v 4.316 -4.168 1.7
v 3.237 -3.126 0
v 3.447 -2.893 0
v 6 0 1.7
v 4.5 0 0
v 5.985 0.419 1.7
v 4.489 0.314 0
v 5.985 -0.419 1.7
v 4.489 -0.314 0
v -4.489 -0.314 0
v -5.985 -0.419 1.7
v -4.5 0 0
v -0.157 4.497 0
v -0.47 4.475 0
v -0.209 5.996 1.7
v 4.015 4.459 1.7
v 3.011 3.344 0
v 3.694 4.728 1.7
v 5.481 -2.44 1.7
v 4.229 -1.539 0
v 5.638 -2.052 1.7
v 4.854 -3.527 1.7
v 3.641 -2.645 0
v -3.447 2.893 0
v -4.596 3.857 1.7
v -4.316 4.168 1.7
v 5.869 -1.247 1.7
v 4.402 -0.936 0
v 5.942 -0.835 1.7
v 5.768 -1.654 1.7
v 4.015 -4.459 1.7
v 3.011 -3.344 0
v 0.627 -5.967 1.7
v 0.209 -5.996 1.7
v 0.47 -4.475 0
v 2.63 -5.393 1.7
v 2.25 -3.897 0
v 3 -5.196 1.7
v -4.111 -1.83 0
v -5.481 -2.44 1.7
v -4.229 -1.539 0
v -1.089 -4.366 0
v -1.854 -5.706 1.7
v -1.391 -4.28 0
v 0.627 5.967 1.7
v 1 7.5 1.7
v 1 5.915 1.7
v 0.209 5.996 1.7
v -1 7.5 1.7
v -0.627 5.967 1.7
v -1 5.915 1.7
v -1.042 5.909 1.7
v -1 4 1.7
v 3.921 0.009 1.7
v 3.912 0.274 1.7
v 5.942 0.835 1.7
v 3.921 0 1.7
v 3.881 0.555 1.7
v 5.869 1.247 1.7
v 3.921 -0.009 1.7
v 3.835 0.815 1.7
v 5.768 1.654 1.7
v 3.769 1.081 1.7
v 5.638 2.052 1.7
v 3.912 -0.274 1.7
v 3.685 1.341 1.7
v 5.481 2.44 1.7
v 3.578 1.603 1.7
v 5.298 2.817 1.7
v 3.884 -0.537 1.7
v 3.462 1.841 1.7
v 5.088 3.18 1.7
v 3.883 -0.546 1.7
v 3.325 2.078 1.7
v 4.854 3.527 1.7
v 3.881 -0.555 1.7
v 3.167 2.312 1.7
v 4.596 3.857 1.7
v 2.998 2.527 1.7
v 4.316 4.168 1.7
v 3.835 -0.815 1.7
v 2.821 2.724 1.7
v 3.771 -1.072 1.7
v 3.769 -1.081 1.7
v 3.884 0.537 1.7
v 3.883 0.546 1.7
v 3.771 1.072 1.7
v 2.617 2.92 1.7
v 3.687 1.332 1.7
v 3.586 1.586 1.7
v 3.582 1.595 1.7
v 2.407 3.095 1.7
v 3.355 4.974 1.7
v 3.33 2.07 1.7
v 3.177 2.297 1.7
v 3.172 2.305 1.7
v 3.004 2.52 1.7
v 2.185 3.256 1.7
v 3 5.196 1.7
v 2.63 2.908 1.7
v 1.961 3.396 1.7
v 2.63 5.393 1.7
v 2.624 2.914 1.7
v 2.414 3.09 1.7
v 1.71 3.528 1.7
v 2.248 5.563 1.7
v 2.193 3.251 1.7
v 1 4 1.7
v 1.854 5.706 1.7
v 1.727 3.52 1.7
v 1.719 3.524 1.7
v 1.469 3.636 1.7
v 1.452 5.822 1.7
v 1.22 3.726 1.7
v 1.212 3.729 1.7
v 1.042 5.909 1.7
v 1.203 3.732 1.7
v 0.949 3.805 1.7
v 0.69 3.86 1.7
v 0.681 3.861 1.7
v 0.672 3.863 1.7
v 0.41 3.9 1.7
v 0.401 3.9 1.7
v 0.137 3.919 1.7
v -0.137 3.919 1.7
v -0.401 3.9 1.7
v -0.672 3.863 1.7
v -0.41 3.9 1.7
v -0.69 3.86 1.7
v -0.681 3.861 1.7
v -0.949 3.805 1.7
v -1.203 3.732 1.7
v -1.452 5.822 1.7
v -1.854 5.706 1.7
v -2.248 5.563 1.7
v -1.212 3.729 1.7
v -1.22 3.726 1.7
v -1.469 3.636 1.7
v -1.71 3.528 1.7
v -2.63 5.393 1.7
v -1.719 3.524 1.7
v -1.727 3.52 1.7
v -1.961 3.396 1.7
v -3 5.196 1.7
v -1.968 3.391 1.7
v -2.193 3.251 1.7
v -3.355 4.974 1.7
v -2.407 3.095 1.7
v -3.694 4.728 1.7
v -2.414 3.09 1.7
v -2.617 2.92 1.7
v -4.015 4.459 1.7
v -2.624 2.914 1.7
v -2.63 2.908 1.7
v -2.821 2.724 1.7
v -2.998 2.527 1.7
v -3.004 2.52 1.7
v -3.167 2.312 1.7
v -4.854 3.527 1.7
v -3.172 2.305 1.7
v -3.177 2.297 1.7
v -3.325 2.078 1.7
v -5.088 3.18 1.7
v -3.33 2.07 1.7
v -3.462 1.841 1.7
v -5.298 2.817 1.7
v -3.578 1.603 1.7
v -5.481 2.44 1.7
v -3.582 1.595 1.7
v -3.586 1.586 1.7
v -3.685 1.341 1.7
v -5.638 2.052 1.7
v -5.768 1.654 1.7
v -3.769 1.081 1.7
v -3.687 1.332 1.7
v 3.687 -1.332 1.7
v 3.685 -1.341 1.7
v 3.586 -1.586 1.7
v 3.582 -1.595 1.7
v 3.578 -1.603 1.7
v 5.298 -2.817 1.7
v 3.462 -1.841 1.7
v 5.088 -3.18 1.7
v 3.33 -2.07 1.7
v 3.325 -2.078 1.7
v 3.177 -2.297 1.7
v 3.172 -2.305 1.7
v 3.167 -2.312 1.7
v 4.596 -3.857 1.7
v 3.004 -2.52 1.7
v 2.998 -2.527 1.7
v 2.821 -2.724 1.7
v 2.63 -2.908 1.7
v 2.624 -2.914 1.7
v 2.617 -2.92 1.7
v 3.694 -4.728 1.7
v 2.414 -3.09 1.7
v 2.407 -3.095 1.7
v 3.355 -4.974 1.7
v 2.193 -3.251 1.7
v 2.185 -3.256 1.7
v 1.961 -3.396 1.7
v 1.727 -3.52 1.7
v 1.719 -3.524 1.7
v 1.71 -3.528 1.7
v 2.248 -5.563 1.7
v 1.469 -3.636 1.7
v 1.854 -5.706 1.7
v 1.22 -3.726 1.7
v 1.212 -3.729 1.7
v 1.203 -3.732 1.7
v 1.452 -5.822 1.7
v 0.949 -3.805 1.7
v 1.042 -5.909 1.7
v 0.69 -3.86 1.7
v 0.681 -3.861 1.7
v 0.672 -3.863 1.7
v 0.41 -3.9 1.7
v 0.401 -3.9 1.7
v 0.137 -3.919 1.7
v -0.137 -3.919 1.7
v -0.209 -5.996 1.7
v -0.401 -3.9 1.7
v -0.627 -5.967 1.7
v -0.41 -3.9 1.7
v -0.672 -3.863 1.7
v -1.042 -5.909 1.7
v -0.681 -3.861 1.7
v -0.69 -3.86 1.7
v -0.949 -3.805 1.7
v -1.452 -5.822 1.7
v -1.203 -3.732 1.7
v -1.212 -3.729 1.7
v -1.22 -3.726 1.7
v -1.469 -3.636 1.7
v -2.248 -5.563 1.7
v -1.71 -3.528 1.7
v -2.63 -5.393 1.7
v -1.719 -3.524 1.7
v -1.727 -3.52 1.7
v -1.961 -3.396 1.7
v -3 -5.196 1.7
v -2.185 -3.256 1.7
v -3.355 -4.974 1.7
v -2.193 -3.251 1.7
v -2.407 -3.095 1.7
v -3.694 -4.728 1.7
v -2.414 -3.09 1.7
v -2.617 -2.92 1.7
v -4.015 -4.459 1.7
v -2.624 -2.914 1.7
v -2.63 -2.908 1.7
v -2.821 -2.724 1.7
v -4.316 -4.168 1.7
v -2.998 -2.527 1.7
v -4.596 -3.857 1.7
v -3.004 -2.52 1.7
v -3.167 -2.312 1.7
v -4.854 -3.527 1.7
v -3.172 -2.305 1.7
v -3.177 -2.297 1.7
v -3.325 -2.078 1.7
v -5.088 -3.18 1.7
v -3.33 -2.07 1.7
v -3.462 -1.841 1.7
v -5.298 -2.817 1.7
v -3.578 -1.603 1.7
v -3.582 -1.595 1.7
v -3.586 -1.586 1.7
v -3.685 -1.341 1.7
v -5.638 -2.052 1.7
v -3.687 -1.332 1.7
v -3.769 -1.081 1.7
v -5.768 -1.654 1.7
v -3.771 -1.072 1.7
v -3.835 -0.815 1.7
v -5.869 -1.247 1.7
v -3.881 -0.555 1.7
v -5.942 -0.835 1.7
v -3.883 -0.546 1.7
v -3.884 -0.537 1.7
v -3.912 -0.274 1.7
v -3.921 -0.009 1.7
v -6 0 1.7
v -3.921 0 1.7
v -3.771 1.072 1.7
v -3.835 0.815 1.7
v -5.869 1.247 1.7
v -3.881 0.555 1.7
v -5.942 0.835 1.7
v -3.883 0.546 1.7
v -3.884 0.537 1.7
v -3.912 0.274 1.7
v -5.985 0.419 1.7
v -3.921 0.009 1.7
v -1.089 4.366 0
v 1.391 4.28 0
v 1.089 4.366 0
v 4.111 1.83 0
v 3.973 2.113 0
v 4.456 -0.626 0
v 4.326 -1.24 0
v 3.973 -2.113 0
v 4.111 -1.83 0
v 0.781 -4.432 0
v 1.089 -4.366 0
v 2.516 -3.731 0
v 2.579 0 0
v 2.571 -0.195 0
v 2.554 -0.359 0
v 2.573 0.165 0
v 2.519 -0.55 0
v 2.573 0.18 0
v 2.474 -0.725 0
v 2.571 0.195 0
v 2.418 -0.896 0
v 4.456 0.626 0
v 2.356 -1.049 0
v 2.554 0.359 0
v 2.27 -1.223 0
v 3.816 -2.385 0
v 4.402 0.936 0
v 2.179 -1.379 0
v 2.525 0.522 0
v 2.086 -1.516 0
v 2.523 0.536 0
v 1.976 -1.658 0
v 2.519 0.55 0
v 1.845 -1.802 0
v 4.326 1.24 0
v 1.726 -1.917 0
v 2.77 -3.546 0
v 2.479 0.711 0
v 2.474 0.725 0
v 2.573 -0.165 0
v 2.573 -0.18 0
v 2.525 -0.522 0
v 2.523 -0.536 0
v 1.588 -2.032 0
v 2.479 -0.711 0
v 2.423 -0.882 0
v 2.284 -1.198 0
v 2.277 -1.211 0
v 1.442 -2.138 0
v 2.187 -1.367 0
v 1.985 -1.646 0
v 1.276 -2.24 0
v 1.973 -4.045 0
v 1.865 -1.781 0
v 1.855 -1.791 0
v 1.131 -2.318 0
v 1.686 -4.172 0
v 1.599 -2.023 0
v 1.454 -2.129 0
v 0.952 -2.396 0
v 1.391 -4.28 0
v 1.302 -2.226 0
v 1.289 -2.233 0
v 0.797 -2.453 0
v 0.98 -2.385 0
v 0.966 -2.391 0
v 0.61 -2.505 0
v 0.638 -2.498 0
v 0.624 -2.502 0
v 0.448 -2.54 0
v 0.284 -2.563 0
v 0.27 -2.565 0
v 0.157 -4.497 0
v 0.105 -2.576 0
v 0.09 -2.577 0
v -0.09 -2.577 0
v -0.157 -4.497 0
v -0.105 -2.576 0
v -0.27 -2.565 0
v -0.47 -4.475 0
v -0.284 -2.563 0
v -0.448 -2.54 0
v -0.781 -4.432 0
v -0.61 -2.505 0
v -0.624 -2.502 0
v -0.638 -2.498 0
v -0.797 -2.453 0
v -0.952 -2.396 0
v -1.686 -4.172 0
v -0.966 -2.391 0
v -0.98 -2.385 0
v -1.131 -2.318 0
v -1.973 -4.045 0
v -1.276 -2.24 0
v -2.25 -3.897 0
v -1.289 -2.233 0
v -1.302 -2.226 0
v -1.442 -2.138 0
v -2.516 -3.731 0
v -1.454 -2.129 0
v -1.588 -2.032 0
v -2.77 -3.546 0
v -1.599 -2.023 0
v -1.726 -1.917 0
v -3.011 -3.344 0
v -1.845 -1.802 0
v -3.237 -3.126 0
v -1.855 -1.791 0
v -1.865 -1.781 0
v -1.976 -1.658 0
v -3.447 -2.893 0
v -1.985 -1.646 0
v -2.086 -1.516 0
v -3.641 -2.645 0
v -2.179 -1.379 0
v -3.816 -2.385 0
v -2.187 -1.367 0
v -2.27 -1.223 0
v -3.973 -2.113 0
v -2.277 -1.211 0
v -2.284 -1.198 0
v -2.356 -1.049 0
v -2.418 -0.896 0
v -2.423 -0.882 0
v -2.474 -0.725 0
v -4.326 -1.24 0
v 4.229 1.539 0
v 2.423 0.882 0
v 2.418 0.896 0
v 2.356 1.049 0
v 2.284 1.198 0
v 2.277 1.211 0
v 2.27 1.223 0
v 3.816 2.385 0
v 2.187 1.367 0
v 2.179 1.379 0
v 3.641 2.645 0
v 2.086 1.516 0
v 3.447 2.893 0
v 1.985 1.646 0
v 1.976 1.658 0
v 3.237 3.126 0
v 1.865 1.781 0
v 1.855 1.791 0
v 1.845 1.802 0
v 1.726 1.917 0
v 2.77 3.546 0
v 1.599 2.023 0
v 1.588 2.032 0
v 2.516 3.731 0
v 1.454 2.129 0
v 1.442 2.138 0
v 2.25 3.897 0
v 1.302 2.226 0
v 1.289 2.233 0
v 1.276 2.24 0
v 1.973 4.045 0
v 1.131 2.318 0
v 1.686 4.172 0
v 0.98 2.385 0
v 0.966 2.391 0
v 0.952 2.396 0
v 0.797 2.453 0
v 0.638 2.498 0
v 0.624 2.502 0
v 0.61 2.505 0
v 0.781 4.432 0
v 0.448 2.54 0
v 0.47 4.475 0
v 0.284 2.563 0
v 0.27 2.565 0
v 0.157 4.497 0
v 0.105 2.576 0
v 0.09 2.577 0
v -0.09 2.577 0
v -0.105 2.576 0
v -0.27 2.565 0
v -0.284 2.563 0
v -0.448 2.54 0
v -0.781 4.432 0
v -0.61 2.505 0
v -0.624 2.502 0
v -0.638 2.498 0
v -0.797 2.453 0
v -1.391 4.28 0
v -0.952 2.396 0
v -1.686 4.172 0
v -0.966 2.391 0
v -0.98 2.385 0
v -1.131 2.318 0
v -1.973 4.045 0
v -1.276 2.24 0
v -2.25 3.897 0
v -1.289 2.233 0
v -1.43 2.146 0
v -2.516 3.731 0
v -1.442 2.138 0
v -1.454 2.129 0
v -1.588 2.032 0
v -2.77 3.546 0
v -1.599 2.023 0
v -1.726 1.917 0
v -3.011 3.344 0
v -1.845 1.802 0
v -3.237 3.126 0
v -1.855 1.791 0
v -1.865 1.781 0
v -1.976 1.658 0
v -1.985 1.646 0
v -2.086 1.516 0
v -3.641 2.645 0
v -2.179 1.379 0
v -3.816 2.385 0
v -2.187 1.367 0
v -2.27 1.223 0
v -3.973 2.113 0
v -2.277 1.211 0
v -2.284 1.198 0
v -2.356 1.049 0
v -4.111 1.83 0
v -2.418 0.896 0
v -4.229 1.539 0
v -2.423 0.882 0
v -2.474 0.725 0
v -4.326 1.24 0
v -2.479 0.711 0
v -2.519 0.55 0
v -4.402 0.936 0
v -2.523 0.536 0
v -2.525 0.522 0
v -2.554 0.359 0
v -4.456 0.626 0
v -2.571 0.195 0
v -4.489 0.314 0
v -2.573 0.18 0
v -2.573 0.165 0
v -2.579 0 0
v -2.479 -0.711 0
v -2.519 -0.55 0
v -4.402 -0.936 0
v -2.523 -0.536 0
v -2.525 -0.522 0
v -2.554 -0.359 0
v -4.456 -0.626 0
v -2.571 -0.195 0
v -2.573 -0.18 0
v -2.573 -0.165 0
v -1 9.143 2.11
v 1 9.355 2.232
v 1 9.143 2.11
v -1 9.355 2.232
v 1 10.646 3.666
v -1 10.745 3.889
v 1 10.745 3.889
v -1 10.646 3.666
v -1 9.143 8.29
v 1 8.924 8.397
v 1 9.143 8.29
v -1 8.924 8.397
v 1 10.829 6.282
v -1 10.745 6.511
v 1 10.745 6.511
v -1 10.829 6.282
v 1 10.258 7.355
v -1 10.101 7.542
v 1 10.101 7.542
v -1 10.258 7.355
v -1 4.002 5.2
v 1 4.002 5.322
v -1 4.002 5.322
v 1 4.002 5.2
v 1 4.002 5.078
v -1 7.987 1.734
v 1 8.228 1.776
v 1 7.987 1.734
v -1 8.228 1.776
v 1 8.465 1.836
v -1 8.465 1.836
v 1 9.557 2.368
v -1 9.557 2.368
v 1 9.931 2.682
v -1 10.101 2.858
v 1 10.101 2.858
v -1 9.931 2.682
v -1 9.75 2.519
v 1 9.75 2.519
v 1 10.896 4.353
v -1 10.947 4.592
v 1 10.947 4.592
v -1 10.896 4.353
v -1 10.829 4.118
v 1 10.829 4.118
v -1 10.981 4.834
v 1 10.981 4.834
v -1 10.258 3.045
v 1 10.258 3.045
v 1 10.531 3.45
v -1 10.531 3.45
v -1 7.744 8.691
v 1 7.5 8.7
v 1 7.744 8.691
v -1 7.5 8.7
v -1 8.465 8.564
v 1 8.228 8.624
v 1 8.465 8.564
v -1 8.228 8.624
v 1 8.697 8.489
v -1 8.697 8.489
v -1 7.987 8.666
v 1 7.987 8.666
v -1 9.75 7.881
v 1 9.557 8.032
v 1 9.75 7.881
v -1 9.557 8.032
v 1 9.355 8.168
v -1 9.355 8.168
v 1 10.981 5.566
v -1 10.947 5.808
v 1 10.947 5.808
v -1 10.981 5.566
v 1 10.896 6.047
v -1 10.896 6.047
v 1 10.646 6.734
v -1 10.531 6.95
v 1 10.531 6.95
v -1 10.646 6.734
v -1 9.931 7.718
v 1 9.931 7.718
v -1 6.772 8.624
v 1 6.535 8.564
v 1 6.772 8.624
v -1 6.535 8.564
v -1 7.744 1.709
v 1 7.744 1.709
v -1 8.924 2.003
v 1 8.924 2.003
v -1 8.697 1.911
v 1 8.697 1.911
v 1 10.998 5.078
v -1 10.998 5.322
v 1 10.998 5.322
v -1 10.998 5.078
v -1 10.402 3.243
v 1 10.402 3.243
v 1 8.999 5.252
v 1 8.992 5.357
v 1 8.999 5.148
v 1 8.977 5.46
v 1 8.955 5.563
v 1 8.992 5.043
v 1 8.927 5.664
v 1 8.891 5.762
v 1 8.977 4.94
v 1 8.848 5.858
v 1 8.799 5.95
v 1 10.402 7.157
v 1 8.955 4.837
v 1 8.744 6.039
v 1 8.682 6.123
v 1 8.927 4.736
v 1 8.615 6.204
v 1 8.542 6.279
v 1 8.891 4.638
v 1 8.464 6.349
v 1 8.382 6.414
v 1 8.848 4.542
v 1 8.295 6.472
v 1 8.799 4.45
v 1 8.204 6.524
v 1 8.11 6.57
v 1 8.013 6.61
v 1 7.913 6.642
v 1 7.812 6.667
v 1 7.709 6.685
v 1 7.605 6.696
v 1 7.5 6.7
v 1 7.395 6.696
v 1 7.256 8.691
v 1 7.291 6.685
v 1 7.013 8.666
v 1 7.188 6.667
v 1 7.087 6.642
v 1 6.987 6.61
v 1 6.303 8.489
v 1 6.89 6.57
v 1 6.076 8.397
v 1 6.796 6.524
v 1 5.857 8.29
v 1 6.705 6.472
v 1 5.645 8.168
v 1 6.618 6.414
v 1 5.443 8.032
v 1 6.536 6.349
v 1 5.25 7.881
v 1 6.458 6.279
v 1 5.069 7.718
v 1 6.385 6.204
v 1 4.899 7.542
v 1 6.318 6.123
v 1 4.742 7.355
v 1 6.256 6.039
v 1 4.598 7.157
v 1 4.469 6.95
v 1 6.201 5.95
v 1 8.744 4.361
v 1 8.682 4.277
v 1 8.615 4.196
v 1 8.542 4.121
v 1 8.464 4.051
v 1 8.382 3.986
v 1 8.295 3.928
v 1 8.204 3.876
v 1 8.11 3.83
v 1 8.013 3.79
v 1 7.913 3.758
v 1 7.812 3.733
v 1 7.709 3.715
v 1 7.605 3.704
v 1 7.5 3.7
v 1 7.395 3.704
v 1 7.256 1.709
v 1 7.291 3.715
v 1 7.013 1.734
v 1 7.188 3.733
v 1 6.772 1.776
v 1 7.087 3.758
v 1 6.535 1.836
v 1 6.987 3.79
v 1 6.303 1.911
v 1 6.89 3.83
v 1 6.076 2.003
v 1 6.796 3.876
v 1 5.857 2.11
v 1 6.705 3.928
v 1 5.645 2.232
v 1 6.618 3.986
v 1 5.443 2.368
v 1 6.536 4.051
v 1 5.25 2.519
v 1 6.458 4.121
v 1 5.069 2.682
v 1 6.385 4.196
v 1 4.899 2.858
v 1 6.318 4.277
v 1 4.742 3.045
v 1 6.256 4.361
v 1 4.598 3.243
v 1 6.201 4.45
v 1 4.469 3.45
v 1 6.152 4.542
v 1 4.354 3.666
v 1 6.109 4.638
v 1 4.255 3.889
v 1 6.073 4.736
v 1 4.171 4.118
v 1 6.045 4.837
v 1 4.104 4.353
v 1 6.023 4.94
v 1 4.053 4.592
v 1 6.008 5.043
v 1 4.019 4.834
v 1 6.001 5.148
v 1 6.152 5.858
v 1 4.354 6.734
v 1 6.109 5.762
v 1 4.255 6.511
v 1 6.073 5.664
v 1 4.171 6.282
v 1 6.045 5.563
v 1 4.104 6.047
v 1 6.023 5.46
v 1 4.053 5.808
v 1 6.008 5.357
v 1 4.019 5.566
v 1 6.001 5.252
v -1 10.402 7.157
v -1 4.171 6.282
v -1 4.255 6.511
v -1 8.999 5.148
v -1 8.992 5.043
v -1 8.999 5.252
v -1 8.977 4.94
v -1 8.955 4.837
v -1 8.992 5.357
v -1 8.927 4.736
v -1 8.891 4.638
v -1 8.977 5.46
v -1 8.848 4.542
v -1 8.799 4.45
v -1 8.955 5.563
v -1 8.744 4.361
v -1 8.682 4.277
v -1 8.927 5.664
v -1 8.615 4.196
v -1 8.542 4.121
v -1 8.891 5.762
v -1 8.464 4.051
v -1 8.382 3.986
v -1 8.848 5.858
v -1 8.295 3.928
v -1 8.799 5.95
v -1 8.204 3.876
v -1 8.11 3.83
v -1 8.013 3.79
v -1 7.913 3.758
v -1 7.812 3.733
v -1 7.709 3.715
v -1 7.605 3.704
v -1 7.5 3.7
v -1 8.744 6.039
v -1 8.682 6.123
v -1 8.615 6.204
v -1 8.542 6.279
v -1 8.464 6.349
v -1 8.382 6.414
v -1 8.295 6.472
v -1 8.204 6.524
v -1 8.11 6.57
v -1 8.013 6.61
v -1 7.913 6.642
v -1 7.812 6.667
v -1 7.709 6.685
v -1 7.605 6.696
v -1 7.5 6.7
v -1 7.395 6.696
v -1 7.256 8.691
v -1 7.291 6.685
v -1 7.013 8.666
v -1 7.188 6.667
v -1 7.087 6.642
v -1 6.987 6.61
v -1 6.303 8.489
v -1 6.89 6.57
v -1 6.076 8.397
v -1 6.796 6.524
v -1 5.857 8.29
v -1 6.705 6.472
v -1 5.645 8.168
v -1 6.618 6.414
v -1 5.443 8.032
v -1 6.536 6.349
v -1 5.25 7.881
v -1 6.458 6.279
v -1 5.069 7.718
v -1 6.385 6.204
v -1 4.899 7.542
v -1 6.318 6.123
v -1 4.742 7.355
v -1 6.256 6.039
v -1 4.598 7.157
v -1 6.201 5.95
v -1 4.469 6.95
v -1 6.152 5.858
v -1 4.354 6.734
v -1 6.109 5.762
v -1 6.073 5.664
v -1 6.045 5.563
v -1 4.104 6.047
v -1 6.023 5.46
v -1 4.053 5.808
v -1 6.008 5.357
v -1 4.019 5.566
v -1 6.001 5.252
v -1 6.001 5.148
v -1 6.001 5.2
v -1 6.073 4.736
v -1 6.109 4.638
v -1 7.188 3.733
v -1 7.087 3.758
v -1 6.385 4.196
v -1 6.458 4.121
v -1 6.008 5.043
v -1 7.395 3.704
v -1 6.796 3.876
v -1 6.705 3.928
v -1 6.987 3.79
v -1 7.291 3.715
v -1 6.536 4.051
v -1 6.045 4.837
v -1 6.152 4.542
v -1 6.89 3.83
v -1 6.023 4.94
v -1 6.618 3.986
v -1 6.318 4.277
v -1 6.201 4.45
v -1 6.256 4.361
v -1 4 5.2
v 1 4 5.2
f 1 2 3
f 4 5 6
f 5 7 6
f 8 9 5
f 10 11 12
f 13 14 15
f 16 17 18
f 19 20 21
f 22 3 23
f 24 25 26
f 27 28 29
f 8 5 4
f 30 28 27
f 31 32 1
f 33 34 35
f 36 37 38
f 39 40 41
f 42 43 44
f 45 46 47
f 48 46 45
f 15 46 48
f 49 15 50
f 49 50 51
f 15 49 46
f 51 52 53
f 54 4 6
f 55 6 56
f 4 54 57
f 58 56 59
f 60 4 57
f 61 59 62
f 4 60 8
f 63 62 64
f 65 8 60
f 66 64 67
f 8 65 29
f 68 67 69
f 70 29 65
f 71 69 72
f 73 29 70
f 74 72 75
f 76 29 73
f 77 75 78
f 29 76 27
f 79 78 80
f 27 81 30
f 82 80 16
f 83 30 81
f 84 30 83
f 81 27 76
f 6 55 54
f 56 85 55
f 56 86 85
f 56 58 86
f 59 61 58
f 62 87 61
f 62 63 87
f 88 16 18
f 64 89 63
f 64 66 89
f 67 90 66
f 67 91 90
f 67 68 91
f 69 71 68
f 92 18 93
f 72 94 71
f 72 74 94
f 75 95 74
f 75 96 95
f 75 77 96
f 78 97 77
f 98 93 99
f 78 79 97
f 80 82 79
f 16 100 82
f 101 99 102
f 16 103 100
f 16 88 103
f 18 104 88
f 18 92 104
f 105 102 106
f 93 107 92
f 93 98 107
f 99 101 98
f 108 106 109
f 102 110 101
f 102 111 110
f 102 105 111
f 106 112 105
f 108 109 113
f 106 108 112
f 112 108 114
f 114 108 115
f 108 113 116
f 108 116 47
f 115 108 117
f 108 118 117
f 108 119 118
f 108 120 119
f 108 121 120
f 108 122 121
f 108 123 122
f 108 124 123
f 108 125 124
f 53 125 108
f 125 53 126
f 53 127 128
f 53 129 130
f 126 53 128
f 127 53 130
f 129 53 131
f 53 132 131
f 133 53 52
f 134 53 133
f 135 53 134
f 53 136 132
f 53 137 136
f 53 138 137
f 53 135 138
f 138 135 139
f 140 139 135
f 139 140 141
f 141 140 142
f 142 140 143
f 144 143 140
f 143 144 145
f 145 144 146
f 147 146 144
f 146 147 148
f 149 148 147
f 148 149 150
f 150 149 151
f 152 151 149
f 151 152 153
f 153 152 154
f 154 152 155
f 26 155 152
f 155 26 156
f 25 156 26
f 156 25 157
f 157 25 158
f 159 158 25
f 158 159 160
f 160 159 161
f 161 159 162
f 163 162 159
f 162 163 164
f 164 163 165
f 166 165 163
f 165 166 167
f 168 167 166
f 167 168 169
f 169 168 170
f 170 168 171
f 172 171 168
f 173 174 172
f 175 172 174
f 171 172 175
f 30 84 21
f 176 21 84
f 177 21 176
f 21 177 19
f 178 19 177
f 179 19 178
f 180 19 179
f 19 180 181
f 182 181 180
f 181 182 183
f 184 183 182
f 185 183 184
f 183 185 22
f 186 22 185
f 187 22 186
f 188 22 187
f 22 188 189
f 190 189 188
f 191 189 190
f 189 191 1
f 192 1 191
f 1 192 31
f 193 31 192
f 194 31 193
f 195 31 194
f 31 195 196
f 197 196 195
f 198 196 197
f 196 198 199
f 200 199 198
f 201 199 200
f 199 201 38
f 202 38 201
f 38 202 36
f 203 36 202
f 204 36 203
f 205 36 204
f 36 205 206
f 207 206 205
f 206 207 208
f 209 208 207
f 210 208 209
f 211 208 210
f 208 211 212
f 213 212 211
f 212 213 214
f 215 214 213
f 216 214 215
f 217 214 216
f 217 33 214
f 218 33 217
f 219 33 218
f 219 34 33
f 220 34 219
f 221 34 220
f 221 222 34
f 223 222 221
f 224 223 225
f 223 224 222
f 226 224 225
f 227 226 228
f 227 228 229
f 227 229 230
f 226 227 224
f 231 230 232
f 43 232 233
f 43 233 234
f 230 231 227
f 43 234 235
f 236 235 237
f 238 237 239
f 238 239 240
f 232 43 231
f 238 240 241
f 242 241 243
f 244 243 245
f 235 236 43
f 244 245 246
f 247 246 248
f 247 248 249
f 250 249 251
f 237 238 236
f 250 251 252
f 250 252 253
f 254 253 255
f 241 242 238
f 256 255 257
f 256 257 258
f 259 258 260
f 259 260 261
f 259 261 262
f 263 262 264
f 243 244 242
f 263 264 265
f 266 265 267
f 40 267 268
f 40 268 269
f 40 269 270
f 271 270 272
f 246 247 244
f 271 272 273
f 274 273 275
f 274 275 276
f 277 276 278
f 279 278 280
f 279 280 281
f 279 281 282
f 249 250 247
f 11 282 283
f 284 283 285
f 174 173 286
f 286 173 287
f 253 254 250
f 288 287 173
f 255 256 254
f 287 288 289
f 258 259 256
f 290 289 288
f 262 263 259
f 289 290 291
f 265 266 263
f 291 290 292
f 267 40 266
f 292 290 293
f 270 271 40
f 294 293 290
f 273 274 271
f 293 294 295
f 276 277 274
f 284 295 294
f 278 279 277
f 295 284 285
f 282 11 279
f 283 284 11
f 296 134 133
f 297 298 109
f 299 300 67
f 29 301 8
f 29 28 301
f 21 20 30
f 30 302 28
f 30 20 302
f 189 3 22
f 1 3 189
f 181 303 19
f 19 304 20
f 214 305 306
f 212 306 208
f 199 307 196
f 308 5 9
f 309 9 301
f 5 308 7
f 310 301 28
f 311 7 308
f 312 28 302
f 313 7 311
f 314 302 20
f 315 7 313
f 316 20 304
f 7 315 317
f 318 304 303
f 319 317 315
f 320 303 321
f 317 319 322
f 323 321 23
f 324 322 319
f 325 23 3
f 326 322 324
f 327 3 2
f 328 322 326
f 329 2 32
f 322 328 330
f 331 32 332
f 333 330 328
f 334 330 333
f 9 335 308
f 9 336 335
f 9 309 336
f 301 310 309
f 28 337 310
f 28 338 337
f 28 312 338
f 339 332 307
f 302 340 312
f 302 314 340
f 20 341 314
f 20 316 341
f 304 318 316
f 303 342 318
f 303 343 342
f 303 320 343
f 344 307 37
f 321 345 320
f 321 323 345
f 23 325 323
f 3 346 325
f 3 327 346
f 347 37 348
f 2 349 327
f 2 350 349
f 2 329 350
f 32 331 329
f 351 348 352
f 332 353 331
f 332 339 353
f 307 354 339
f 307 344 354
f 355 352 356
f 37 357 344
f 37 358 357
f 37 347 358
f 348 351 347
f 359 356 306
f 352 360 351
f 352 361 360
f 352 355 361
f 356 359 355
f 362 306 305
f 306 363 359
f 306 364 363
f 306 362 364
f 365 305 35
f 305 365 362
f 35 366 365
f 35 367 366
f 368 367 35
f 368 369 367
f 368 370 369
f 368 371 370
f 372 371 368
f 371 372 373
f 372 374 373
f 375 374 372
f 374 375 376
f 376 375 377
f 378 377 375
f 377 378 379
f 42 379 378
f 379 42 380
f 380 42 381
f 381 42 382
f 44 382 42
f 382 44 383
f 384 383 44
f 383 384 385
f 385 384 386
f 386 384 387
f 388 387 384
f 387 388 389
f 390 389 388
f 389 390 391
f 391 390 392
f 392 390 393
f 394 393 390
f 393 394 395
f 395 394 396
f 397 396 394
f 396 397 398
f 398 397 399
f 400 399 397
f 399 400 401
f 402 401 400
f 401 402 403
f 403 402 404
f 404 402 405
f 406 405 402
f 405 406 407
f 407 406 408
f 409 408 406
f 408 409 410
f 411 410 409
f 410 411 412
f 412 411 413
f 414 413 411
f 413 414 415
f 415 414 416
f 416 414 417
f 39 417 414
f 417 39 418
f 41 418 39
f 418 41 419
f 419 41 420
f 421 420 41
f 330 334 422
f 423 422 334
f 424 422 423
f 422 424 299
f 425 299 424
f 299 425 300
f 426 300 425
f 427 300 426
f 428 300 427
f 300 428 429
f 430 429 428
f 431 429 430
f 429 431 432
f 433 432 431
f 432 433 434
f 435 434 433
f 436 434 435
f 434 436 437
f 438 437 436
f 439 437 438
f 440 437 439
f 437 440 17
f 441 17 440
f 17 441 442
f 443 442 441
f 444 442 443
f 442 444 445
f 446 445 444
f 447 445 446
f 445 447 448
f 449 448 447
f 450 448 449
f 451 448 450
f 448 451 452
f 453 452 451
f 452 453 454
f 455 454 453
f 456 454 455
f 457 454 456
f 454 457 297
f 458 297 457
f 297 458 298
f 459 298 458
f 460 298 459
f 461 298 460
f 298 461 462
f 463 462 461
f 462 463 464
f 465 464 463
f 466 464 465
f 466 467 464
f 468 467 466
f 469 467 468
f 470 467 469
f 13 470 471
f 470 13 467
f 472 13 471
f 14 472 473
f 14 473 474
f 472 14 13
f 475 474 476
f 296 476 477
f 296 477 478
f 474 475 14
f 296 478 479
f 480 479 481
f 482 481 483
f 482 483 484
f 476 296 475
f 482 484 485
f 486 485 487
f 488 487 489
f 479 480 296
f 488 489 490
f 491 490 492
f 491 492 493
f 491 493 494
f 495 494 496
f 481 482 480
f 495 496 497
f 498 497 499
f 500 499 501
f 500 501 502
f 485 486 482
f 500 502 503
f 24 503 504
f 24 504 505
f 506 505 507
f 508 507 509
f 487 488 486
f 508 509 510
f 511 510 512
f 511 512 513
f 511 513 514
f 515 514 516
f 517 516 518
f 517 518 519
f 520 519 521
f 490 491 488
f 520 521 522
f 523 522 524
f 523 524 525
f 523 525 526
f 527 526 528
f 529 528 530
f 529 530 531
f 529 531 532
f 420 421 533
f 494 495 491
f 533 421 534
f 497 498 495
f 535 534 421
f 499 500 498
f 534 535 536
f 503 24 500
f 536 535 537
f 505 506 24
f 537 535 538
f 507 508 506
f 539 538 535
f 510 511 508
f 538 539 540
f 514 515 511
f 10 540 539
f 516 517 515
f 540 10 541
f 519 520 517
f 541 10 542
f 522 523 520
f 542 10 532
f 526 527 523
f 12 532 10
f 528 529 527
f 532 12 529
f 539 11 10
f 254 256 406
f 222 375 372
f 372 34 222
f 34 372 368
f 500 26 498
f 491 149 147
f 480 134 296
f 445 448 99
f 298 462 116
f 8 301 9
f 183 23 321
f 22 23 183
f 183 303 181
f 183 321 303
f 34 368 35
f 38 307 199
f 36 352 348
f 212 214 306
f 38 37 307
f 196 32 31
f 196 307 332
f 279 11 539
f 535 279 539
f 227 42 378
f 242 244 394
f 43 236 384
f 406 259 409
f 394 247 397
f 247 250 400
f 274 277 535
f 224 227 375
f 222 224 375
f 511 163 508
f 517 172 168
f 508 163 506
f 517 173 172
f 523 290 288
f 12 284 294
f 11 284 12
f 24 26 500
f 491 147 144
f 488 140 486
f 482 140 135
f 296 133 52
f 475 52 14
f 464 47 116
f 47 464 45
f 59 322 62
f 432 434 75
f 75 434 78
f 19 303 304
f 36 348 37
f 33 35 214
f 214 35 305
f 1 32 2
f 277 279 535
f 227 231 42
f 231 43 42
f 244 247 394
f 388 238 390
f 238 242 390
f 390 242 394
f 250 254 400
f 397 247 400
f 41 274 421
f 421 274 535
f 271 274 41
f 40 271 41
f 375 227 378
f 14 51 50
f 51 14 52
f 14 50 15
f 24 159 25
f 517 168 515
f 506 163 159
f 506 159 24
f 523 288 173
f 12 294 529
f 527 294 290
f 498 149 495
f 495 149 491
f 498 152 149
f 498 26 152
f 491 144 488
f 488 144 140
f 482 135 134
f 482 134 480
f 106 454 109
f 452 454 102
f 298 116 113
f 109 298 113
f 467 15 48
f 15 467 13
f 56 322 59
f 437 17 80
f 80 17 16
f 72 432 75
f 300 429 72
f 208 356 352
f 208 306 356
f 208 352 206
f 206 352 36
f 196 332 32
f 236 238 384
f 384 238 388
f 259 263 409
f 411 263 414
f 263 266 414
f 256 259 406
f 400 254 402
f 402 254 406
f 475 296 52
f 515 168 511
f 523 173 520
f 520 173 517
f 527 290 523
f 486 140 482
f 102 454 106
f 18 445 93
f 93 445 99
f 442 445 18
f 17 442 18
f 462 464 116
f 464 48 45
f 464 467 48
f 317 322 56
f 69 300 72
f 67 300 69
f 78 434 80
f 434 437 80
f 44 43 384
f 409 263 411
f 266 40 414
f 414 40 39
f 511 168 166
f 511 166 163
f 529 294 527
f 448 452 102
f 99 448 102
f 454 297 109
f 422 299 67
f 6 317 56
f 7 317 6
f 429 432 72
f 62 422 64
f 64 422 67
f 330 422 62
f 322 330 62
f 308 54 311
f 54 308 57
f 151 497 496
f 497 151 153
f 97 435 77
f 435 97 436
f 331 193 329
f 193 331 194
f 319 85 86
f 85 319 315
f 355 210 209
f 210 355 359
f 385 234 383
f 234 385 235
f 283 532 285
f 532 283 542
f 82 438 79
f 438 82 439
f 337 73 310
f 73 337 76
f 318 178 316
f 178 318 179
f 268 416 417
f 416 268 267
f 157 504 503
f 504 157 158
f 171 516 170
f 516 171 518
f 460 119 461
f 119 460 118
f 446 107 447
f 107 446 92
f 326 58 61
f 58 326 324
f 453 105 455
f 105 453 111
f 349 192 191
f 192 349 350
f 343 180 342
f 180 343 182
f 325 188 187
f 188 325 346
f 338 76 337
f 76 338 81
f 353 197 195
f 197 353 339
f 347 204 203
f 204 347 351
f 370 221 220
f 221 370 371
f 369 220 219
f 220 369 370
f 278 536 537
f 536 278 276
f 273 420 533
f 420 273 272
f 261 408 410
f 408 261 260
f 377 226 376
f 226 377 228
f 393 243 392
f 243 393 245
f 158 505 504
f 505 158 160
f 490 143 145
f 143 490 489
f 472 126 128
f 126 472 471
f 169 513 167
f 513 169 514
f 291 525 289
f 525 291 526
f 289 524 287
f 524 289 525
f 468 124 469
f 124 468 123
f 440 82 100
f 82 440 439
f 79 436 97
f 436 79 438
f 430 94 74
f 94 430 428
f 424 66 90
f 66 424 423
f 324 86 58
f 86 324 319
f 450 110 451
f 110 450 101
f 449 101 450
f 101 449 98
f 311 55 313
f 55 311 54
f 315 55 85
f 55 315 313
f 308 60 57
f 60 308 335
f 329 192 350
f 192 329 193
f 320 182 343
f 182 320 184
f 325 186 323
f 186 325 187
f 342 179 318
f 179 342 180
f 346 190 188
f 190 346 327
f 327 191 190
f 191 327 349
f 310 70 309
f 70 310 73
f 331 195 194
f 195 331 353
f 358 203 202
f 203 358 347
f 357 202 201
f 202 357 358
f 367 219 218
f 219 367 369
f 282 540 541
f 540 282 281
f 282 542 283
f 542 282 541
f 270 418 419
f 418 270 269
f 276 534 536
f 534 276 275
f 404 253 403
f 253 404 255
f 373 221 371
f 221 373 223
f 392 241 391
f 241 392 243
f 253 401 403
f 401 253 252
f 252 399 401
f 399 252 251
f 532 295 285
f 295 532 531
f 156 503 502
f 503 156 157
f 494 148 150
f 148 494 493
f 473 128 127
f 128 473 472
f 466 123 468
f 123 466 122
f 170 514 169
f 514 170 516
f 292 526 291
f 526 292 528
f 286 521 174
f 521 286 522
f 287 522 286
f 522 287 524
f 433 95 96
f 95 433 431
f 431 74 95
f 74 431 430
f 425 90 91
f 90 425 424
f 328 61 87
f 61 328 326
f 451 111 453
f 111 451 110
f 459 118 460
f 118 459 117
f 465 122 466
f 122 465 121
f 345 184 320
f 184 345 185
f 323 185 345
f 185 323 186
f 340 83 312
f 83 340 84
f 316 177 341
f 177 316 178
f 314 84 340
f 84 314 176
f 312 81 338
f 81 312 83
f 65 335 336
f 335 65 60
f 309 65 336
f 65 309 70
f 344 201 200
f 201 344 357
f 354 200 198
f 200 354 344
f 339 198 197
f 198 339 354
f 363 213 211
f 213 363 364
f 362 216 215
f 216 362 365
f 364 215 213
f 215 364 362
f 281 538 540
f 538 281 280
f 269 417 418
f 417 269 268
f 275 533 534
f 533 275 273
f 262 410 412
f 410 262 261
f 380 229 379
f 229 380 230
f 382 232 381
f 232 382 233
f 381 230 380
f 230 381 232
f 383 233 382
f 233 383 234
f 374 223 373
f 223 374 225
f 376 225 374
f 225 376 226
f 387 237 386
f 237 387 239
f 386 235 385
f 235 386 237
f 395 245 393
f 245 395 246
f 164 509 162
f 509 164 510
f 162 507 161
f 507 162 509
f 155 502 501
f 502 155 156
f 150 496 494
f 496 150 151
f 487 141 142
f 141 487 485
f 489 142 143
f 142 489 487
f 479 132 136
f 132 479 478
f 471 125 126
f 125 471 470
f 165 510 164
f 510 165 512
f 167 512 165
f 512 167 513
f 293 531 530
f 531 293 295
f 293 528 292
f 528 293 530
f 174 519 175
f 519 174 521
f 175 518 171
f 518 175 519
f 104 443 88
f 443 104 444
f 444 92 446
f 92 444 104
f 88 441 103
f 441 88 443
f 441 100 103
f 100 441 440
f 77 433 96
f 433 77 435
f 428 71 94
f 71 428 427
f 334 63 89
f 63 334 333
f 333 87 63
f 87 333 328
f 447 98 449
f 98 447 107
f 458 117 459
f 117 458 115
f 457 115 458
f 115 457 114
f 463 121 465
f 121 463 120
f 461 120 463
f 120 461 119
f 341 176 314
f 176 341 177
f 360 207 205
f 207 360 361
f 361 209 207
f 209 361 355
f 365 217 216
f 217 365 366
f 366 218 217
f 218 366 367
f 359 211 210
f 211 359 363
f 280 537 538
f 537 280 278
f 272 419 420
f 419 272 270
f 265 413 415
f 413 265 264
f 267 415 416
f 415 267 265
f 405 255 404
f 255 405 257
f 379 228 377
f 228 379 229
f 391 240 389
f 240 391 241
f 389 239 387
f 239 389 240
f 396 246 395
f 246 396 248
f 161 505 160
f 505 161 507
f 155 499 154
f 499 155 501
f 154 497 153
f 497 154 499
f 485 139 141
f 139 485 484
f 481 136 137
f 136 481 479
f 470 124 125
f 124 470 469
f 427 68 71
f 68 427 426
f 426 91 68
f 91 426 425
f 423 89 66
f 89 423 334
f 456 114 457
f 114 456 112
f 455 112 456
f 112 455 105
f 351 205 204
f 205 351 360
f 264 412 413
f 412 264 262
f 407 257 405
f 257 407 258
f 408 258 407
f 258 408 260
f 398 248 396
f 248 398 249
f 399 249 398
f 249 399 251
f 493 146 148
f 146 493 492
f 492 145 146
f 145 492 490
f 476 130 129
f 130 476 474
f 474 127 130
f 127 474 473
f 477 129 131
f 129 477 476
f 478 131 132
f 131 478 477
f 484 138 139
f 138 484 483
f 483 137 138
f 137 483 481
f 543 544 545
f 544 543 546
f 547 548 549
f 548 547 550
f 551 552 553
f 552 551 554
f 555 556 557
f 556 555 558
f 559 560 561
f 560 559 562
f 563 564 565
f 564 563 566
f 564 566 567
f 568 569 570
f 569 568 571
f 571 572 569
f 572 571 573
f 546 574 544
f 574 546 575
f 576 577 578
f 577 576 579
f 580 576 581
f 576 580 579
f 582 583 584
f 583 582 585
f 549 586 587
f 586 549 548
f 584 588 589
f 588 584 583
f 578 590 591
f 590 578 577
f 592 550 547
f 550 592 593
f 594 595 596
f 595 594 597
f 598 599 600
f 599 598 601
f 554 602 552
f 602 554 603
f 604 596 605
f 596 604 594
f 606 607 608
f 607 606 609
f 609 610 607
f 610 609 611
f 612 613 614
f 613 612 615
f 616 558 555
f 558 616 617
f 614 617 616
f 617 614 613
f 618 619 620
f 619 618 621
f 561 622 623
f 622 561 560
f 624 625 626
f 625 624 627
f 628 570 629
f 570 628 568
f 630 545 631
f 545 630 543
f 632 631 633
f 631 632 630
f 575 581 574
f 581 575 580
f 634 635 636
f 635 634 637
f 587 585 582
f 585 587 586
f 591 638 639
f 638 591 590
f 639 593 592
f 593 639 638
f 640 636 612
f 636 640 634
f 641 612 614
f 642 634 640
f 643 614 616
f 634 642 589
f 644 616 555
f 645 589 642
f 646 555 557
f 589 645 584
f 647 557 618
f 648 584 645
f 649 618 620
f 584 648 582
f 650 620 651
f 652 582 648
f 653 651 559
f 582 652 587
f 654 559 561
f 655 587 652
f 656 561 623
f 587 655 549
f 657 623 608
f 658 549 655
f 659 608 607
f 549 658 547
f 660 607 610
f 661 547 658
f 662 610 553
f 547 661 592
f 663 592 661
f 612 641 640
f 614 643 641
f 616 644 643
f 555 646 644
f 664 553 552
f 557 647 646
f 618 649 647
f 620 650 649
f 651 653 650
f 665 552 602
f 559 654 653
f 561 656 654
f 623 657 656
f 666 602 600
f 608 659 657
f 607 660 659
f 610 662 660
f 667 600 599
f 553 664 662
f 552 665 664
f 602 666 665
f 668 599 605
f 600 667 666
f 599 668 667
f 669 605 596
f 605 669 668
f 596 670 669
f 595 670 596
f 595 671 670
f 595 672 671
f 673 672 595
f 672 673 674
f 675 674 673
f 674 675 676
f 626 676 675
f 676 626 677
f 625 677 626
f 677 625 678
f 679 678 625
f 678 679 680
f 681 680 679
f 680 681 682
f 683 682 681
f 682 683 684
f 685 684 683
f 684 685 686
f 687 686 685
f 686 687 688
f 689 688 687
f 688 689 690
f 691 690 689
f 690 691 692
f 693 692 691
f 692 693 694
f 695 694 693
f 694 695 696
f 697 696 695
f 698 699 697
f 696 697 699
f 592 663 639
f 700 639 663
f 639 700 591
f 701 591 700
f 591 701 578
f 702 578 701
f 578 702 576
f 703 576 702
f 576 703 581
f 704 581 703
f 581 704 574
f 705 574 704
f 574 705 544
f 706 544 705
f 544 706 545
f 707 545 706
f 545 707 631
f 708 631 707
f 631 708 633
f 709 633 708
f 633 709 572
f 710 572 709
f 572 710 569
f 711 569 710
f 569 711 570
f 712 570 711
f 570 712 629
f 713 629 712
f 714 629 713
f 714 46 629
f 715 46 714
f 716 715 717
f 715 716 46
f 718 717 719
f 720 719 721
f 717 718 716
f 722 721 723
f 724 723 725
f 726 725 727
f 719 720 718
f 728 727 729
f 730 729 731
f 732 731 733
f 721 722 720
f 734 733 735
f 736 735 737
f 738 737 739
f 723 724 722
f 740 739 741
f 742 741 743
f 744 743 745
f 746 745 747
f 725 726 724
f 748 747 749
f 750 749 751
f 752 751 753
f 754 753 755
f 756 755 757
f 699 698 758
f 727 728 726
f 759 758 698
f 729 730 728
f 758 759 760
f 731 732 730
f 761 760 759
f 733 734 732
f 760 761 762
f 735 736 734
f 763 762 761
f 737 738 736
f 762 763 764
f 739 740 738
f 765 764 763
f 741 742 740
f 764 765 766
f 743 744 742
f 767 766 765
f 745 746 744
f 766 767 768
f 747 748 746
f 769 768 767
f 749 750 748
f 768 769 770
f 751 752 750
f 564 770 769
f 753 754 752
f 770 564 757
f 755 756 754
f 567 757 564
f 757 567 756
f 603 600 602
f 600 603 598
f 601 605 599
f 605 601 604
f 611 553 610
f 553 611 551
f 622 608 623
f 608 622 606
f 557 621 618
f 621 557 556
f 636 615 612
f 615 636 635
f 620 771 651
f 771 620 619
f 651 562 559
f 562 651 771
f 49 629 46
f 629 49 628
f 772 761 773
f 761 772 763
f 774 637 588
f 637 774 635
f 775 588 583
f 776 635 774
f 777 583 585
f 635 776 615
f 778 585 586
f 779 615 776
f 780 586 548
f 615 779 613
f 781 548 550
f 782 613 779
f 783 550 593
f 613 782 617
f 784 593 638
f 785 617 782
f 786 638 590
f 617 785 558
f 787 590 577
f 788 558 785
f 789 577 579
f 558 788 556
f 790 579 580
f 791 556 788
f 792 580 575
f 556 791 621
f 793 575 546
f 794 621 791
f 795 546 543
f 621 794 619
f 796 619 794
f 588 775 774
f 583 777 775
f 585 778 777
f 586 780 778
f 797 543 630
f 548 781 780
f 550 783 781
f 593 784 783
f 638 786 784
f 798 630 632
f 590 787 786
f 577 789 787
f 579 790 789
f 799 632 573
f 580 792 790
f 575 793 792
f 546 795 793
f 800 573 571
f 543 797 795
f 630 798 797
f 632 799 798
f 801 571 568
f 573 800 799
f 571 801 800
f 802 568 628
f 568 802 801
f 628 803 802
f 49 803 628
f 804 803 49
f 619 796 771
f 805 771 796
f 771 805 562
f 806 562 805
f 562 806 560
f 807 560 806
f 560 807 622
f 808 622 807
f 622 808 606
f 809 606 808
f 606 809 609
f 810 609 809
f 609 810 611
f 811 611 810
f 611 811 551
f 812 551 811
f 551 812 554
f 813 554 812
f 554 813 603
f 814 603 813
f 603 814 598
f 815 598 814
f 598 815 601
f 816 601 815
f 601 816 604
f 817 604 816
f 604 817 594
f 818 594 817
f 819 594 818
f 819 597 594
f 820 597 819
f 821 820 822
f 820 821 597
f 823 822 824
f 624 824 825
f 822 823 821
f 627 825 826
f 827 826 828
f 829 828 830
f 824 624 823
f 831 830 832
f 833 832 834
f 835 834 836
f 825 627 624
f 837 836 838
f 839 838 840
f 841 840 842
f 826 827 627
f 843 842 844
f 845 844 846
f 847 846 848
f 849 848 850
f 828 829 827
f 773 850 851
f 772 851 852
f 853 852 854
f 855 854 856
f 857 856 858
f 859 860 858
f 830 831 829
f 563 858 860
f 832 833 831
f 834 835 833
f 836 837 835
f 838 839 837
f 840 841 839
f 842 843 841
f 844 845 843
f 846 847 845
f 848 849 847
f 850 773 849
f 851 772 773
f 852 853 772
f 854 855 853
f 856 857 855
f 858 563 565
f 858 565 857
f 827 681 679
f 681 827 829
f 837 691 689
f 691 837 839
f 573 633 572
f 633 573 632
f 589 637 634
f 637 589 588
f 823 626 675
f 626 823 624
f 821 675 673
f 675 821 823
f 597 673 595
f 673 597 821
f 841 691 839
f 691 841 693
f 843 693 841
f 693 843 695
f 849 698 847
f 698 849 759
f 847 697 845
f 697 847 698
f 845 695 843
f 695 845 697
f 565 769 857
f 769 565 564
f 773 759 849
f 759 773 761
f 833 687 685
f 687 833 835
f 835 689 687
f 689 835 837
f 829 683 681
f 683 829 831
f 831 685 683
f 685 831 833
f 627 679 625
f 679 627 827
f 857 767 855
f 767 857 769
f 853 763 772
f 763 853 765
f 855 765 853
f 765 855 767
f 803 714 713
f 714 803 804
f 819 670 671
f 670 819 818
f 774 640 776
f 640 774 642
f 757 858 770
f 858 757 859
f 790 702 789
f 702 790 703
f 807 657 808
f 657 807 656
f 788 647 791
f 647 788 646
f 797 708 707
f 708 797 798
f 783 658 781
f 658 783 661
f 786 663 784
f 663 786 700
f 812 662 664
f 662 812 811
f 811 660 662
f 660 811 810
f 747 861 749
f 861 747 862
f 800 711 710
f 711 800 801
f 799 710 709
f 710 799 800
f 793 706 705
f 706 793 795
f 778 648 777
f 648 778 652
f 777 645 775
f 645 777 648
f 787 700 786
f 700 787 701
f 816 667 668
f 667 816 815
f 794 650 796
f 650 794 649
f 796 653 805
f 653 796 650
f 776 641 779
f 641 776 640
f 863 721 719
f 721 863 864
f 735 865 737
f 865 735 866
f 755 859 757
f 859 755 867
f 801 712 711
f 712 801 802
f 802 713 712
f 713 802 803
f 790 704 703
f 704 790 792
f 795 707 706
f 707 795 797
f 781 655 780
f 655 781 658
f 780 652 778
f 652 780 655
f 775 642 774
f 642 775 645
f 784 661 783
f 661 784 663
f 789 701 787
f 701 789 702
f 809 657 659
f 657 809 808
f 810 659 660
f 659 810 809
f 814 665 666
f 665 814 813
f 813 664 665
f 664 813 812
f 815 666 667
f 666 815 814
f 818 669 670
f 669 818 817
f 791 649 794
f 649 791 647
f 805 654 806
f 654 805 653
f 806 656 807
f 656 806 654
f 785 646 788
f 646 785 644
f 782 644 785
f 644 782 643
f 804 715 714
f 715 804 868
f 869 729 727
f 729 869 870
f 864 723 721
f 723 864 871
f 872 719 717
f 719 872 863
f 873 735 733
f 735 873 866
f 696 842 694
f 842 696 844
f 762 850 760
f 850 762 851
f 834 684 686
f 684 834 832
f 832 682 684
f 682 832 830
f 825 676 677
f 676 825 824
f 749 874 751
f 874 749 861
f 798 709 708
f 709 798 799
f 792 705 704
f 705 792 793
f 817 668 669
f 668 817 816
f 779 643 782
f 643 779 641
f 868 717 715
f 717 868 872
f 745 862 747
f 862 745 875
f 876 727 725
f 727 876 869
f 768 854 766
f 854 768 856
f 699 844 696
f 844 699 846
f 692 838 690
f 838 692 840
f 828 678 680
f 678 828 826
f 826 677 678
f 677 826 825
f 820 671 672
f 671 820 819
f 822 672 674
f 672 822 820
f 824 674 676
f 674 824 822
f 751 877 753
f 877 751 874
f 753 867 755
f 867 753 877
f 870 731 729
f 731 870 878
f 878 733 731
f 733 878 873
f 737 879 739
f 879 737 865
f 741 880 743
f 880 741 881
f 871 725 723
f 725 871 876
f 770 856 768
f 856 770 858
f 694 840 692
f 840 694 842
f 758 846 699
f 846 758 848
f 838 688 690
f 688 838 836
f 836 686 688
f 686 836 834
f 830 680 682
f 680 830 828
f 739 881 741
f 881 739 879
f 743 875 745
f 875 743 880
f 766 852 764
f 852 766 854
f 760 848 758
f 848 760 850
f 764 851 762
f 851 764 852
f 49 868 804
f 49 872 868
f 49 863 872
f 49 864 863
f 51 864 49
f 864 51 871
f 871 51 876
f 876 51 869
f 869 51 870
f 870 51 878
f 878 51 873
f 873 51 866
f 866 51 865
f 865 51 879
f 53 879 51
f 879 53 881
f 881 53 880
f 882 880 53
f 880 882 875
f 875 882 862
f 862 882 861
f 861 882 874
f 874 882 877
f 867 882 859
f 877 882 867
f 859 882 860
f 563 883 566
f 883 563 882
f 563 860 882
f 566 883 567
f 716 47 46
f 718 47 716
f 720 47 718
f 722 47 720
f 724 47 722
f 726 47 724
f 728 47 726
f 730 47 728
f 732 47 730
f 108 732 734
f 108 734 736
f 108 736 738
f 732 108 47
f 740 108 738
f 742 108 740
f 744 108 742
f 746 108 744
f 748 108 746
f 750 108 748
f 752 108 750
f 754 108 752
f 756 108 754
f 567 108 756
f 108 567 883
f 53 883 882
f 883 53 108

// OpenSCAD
// -*- mode: SCAD ; c-file-style: "ellemtel" ; coding: utf-8 -*-
//
// Ring, um die Kette des Stöpsels am Spülbecken zu befestigen
//
// © 2017 Roland Sieker <ospalh@gmail.com>
// Licence: CC-0 4.0

d_i_u = 5;
d_i_o = 8;
r_i_u = d_i_u/2;
r_i_o = d_i_o/2;
//h = 2;

w=2;
r_a_u = r_i_u + w;
r_a_o = r_i_o + w;

h = 1.7;

ms = 0.1;  // Muggeseggele


r_k = 1.5;
r_k_a = r_k+w;

$fn=90;

difference()
{
    cylinder(r1=r_a_u, r2=r_a_o, h=h);
    translate([0,0,-ms])
    {
        cylinder(r1=r_i_u, r2=r_i_o, h=h+2*ms);
    }
}

translate([0, r_i_o+r_k_a, h+r_k_a])
{
   rotate([0, 90, 0])
   {
      difference()
      {
         cylinder(r=r_k_a, h=w, center=true);
         cylinder(r=r_k, h=w+2*ms, center=true);
      }

   }
}


difference()
{
   translate([0, r_i_o+r_k_a/2, h+r_k_a/2])
   {
      cube([w, r_k_a, r_k_a], center=true);
   }
   translate([0, r_i_o+r_k_a, h+r_k_a])
   {
      rotate([0, 90, 0])
      {
         cylinder(r=r_k, h=w+2*ms, center=true);

      }
   }
}
